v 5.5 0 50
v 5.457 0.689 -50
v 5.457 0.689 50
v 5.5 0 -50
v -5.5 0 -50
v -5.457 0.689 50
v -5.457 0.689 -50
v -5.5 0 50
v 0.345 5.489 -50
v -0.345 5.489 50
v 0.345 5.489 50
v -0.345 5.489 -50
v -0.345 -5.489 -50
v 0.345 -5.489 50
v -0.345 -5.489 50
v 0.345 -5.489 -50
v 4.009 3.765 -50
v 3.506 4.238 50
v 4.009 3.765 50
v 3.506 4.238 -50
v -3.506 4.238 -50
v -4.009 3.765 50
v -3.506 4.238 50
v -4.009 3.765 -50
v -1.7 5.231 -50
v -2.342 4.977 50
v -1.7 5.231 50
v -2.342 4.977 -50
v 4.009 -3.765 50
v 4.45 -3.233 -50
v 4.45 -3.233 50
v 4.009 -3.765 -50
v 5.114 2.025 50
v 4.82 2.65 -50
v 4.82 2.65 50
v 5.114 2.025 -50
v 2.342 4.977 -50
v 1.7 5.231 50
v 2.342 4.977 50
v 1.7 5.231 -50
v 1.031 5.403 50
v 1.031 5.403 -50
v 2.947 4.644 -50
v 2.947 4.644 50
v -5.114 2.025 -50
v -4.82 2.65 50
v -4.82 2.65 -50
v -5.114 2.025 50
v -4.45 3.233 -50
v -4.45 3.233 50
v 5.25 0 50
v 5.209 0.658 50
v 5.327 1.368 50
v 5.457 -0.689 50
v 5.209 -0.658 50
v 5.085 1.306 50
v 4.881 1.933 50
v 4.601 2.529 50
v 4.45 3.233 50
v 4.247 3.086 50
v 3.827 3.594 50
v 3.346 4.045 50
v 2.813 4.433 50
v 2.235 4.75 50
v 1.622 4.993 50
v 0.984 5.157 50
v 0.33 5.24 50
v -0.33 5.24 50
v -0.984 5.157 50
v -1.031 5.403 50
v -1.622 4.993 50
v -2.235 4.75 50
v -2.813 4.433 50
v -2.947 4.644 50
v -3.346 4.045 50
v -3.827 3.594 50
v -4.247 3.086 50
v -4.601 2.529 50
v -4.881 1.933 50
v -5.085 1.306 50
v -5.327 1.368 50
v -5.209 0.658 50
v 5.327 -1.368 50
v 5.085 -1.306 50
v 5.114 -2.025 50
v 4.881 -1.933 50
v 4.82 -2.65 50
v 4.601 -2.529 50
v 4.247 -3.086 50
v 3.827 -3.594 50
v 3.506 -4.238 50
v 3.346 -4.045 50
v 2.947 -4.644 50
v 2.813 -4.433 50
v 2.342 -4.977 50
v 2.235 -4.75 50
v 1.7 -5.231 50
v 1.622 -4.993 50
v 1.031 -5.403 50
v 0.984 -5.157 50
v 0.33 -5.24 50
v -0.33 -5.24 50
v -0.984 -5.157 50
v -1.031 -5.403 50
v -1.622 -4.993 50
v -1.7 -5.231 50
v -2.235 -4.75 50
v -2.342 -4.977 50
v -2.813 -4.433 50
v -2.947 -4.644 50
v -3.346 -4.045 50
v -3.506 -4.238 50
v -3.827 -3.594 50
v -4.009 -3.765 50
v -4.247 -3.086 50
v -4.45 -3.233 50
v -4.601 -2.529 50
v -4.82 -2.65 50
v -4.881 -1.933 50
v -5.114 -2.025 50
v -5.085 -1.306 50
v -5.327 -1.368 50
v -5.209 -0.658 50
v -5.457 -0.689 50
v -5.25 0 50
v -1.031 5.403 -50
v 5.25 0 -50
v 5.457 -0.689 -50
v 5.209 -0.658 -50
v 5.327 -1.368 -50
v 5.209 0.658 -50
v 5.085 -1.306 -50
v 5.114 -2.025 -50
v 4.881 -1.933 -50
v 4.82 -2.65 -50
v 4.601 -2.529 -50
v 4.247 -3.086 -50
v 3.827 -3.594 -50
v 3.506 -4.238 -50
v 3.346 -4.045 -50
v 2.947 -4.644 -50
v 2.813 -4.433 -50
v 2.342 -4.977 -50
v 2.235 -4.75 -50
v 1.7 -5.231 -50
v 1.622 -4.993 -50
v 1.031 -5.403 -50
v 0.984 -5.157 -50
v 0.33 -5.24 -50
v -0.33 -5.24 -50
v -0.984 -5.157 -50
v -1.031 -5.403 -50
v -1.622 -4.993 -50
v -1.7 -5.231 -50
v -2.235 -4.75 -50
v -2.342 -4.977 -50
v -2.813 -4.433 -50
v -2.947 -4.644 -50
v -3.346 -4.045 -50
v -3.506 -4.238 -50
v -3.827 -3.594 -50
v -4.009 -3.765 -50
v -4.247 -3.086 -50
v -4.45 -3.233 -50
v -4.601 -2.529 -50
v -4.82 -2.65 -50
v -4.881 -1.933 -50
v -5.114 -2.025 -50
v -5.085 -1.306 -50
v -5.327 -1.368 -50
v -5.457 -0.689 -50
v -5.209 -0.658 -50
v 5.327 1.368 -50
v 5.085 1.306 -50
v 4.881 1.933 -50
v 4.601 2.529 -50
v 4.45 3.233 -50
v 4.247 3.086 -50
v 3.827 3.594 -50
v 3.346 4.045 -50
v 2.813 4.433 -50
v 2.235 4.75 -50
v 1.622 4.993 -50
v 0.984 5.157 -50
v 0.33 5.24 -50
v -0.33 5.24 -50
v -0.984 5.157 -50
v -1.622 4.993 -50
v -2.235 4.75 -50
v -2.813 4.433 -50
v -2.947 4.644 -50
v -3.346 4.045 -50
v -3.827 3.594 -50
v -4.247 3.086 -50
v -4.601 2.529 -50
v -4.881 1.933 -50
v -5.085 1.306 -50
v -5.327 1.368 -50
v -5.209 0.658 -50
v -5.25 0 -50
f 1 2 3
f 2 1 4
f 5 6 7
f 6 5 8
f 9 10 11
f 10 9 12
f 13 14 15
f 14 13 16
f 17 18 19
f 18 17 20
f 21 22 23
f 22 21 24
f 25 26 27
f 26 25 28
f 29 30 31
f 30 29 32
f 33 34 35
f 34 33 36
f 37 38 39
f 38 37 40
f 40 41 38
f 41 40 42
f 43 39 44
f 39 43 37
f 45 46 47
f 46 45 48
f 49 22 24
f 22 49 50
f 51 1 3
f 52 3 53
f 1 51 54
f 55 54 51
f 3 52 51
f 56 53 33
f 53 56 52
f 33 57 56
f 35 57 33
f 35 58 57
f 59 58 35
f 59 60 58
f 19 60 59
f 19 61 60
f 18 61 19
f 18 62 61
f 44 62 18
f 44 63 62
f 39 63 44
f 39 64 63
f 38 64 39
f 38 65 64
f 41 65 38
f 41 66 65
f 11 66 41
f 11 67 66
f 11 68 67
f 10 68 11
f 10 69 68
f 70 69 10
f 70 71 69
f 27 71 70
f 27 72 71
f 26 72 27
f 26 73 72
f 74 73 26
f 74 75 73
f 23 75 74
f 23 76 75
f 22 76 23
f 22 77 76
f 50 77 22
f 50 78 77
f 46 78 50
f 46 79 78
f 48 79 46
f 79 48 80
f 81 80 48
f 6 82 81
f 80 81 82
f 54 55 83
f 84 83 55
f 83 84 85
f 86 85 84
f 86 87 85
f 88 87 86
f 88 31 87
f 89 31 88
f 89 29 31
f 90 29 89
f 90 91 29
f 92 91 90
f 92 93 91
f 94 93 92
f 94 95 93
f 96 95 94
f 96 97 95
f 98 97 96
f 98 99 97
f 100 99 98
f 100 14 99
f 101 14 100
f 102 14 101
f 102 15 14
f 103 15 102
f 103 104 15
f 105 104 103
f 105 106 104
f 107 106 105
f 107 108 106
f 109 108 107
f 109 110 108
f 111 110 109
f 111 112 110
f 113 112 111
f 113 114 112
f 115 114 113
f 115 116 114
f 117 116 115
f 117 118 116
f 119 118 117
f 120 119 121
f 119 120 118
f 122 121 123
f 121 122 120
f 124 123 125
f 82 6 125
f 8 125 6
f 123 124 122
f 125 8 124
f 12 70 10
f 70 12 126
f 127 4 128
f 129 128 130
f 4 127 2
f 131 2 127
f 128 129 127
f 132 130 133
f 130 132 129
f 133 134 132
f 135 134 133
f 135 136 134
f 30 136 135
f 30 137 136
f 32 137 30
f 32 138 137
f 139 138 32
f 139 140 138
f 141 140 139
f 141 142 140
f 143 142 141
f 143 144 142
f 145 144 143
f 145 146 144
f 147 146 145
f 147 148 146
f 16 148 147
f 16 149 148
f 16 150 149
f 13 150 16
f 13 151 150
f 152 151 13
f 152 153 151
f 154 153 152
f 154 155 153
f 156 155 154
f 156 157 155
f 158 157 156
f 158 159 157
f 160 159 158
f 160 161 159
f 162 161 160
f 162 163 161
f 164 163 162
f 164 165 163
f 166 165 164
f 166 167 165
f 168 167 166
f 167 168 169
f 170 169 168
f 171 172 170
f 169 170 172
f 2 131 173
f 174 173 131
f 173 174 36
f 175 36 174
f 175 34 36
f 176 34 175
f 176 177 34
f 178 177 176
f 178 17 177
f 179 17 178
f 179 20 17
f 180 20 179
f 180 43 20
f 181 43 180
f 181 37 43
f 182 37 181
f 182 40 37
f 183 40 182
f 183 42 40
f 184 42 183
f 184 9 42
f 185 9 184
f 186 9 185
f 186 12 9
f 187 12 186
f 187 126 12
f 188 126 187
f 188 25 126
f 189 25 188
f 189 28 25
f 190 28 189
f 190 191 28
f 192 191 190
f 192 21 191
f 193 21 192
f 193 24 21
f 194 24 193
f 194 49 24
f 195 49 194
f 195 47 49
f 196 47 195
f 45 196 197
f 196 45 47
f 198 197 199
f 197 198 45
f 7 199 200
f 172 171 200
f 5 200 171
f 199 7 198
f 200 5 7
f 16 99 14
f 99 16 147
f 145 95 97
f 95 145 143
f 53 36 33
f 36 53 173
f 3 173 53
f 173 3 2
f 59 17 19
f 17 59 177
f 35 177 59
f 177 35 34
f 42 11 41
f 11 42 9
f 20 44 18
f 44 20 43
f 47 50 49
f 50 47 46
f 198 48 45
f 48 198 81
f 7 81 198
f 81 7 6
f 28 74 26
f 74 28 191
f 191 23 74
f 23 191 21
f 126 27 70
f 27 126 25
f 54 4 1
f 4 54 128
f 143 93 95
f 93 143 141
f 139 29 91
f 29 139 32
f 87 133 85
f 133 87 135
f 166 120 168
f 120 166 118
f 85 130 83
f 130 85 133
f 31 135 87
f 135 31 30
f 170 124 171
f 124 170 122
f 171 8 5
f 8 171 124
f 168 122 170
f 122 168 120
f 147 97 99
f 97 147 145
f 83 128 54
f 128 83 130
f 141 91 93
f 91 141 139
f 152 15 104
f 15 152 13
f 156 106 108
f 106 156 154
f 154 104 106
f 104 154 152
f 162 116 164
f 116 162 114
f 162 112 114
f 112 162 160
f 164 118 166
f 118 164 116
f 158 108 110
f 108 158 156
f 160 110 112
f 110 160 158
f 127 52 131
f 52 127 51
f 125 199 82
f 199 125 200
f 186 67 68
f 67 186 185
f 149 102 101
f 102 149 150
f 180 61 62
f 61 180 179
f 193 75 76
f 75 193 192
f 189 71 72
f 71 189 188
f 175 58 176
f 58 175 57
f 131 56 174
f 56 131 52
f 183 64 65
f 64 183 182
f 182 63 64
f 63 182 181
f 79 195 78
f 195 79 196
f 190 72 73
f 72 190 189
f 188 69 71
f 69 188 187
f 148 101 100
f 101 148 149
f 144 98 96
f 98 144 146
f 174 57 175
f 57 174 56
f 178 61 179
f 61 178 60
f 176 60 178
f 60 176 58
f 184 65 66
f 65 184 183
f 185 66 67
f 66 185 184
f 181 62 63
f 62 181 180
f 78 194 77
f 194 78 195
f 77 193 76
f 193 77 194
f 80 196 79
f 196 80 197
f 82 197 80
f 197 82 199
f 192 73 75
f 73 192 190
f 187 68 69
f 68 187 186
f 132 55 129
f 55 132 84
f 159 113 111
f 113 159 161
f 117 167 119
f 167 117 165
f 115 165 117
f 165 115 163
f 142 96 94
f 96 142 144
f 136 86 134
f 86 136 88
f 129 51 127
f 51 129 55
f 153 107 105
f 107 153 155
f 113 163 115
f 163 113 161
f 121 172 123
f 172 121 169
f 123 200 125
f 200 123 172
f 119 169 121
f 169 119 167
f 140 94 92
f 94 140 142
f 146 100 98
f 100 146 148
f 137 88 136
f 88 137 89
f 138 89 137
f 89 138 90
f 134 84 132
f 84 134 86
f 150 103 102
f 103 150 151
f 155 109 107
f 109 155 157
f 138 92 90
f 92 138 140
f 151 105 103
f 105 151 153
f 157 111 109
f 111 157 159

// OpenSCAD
$fn = 50;


difference() {
	union() {
		translate(v = [0, 0, -50.0000000000]) {
			cylinder(h = 100, r = 5.5000000000);
		}
	}
	union() {
		translate(v = [0, 0, -100.0000000000]) {
			cylinder(h = 200, r = 5.2500000000);
		}
	}
}
